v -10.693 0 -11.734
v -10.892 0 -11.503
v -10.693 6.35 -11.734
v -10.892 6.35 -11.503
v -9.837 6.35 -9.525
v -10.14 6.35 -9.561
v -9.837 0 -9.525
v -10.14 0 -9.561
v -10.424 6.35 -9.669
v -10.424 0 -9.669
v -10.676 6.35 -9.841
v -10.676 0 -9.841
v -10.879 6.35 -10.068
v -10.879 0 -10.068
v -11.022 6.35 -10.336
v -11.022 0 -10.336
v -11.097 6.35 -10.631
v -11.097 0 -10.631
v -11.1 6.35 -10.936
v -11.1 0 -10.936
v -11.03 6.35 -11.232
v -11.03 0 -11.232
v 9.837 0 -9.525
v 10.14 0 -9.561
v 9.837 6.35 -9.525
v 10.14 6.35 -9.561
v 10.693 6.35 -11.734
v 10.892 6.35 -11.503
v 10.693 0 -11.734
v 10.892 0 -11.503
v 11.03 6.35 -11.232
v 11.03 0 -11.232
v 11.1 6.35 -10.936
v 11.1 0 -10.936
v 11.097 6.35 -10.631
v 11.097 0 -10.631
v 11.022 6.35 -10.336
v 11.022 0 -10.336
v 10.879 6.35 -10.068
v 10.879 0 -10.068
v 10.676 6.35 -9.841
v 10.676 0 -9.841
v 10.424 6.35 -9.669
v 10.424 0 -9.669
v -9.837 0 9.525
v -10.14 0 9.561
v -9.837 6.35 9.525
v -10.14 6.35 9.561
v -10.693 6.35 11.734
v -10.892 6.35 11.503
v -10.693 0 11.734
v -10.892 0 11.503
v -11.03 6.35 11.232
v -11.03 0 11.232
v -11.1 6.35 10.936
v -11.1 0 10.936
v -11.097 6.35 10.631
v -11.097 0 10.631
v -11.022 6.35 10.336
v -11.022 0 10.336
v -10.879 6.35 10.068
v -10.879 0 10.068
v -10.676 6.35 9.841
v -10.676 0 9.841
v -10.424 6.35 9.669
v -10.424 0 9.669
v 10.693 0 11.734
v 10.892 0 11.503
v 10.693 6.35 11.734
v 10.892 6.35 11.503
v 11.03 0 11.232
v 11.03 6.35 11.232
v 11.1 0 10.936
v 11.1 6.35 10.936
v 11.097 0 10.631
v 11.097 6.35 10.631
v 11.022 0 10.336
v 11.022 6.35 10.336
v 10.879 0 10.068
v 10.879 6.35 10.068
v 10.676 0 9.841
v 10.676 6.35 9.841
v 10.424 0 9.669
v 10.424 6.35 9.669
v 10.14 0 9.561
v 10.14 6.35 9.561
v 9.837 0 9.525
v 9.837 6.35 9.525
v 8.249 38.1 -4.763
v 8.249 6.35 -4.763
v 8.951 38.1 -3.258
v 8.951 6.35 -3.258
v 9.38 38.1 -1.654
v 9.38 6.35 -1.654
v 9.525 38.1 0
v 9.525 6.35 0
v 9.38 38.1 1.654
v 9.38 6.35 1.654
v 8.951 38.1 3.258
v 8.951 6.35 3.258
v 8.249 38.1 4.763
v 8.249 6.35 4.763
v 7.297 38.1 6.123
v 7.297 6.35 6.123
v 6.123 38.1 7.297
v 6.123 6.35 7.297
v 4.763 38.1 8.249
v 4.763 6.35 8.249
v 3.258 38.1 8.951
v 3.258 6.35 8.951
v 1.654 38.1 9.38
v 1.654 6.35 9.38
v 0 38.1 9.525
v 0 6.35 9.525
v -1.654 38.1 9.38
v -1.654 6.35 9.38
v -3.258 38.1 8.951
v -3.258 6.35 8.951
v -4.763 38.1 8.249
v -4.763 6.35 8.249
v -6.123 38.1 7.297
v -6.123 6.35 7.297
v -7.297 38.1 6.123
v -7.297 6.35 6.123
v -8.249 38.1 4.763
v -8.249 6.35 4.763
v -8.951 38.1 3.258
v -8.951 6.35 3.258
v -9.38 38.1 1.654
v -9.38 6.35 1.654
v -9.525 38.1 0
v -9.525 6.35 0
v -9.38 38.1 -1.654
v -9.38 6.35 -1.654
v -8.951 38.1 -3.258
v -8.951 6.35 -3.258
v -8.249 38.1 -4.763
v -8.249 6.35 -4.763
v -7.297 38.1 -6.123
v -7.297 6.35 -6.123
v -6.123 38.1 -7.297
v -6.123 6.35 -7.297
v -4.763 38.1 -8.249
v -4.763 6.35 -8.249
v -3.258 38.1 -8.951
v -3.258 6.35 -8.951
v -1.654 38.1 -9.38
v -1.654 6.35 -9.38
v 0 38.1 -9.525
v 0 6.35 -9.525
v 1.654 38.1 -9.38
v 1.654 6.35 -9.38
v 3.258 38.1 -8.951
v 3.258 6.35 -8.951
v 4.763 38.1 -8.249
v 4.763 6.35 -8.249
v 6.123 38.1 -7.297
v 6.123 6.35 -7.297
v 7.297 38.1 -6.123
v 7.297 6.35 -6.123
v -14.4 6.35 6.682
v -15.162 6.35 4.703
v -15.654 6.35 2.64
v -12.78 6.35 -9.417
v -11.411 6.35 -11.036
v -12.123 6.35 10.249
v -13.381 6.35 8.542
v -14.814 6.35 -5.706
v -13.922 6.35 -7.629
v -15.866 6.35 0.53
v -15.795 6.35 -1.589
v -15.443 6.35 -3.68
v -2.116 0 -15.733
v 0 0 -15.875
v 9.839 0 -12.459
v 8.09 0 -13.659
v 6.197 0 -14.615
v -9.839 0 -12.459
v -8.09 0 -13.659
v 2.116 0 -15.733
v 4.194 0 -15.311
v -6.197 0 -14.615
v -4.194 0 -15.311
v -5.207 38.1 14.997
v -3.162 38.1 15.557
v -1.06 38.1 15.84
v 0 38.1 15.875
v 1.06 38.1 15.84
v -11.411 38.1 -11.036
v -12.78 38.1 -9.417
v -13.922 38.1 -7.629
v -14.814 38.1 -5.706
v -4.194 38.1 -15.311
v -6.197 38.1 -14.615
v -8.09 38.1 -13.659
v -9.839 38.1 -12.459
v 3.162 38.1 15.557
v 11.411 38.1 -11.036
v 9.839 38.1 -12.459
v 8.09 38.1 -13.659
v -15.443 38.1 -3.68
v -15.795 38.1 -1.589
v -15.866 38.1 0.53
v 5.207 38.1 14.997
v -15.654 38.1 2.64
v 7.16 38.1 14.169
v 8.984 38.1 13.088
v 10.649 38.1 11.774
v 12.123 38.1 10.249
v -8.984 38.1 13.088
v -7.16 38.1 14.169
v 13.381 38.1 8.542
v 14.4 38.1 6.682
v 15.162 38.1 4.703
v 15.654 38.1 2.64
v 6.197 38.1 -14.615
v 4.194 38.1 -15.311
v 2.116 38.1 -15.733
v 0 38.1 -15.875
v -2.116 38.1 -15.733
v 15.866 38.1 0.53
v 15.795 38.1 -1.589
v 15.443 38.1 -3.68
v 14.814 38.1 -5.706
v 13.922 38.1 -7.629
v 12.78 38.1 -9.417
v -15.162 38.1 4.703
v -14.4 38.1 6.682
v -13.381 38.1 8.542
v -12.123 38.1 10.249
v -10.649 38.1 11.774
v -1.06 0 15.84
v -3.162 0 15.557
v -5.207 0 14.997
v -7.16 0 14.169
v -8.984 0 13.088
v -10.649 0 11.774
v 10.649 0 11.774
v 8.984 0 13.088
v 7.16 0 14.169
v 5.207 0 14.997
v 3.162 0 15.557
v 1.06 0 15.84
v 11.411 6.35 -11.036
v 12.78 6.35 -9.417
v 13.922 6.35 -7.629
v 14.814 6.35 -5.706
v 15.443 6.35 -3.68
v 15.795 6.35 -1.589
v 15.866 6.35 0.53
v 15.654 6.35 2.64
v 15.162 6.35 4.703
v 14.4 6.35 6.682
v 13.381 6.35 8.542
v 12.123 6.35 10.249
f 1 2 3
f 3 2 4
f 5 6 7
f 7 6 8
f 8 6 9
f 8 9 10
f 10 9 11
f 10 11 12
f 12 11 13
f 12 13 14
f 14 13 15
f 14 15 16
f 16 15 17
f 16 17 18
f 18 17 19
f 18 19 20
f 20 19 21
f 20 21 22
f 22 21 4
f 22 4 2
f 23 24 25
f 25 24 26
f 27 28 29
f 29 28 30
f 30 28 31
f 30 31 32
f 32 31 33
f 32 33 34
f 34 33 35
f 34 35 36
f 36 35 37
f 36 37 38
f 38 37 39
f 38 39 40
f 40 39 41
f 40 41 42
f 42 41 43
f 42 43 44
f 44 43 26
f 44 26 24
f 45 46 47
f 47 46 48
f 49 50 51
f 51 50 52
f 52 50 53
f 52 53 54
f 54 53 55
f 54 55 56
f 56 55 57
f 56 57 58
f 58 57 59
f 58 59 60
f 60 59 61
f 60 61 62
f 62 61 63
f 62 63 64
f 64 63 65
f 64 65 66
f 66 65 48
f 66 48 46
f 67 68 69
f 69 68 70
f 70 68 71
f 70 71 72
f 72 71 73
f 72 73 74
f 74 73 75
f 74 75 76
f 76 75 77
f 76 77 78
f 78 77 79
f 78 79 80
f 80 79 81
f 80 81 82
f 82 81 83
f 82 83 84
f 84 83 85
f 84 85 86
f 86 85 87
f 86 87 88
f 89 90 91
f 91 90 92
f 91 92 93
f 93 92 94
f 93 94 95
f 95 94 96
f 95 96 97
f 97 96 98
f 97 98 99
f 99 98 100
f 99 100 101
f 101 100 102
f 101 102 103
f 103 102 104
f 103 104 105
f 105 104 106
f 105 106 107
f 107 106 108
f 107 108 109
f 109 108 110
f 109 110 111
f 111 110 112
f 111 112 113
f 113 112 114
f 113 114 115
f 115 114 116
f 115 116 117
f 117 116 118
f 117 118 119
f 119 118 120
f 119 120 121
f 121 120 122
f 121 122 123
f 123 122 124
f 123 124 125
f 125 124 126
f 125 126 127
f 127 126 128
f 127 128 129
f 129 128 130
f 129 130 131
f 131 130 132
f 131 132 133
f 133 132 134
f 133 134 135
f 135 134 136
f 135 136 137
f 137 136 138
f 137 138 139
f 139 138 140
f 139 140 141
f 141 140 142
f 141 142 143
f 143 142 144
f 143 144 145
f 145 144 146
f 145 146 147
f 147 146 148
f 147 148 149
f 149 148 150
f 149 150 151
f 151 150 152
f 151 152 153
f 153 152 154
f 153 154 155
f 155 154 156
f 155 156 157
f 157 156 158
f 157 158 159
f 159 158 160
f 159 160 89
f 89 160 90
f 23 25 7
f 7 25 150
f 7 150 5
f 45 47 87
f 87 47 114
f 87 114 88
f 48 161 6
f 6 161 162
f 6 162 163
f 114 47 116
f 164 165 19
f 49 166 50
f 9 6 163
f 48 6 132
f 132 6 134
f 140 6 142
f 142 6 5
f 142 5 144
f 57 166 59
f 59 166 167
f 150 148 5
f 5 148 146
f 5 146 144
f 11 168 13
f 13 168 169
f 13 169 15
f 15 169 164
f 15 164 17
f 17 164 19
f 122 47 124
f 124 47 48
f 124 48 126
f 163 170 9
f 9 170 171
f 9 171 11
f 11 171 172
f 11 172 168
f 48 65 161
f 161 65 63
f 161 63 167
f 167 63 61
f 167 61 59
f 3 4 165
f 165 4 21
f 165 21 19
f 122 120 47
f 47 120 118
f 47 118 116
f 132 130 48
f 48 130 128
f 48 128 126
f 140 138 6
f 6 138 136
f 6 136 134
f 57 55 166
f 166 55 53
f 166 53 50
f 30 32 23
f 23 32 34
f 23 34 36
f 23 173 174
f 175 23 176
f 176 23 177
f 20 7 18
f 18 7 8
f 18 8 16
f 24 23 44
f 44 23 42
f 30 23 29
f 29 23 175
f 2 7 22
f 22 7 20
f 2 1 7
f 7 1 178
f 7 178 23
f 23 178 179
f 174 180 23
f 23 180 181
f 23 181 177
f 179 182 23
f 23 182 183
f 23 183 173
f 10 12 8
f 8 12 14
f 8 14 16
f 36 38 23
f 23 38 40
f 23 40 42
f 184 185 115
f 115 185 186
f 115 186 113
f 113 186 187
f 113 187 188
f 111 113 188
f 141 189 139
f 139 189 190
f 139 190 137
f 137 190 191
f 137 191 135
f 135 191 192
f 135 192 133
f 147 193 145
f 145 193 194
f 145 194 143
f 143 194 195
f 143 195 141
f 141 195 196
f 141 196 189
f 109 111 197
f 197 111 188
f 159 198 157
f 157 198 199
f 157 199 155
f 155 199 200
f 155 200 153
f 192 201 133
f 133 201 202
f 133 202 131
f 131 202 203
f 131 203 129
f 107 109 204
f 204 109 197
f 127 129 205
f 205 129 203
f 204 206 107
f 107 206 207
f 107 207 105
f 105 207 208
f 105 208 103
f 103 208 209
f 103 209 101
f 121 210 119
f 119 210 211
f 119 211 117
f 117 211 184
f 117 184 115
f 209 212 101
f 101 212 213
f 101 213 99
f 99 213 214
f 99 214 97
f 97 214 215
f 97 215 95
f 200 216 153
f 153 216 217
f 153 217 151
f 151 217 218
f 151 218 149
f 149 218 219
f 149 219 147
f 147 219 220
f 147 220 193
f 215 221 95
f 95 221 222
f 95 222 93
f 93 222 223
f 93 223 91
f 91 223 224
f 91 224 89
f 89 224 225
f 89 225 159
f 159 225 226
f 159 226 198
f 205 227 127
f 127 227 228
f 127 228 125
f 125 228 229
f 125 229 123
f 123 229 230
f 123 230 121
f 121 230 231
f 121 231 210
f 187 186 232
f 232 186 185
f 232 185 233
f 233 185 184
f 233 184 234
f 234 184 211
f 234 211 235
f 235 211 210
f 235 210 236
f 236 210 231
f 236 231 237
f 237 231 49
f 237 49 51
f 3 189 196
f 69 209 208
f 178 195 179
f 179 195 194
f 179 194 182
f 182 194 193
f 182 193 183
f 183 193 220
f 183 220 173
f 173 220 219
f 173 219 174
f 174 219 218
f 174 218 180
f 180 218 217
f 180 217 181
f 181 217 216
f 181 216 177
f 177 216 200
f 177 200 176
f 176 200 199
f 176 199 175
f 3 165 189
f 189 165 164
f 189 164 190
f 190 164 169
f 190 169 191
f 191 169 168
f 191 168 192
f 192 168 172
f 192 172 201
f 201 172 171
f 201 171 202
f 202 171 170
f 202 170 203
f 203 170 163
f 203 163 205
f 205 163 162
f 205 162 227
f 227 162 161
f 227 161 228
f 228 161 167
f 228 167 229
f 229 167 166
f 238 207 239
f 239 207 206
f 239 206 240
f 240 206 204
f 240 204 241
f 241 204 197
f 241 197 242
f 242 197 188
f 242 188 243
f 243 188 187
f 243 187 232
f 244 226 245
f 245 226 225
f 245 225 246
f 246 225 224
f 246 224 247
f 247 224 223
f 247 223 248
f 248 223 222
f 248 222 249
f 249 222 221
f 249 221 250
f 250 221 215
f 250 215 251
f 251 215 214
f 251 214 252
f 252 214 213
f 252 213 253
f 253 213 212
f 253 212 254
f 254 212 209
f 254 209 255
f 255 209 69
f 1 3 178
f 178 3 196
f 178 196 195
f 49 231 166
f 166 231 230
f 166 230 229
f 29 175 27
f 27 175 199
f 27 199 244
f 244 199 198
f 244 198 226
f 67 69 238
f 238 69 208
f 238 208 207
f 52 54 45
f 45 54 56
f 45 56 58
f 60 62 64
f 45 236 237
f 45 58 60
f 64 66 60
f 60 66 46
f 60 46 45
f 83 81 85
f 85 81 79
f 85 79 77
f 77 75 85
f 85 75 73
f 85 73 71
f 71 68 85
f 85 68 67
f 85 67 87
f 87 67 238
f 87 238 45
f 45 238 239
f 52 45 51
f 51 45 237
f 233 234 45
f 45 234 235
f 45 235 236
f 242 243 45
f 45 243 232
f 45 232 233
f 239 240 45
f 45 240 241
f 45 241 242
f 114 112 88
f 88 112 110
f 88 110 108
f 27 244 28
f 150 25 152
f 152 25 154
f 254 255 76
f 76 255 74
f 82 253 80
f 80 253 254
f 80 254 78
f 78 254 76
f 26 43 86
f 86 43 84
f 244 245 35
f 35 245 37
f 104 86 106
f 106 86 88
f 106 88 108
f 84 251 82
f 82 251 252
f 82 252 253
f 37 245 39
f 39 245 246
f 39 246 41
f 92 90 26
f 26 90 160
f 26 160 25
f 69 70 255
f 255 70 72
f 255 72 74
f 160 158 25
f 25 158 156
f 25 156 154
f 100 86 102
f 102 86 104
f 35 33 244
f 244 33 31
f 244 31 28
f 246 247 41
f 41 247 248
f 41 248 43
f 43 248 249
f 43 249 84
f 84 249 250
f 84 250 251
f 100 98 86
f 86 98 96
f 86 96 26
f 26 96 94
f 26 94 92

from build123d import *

# Parameters (mm, degrees)
SKETCH1_R               = 15.875
BOSS_EXTRUDE1_DEPTH     = 38.1
CUT_EXTRUDE1_DEPTH      = 45.22263278
CUT_EXTRUDE1_DEPTH_BACK = 45.22263278
SKETCH2_W               = 19.05
SKETCH2_H               = 6.35
SKETCH3_R               = 9.525
CUT_EXTRUDE2_DEPTH      = 45.22263278
FILLET1_R               = 1.27


with BuildPart() as part:
    # Sketch1 → Boss-Extrude1 (new body)
    with BuildSketch(Plane(origin=(0, 0, 0), x_dir=(1, 0, 0), z_dir=(0, 1, 0))):
        with Locations(Location((0, 0, 0), (0, 0, 270))):
            Circle(SKETCH1_R)
    extrude(amount=BOSS_EXTRUDE1_DEPTH)

    # Sketch2 → Cut-Extrude1 (cut, two sides: drawn at the far end of the back side and taken through both)
    with BuildSketch(Plane(origin=(0, 0, 0), x_dir=(0, 0, -1), z_dir=(1, 0, 0)).offset(-CUT_EXTRUDE1_DEPTH_BACK)):
        with Locations((0, 3.175)):
            Rectangle(SKETCH2_W, SKETCH2_H)
    extrude(amount=CUT_EXTRUDE1_DEPTH + CUT_EXTRUDE1_DEPTH_BACK, mode=Mode.SUBTRACT)

    # Sketch3 → Cut-Extrude2 (cut, through all)
    with BuildSketch(Plane(origin=(0, 38.1, 0), x_dir=(1, 0, 0), z_dir=(0, 1, 0))):
        with Locations(Location((0, 0, 0), (0, 0, 270))):
            Circle(SKETCH3_R)
    extrude(amount=-CUT_EXTRUDE2_DEPTH, mode=Mode.SUBTRACT)

    # Fillet1
    fillet1_edges = [part.edges().sort_by_distance(p)[0] for p in [
        (-12.7, 3.175, 9.525),
        (12.7, 3.175, 9.525),
        (12.7, 3.175, -9.525),
        (-12.7, 3.175, -9.525),
    ]]
    fillet(fillet1_edges, radius=FILLET1_R)


solid = part.part
